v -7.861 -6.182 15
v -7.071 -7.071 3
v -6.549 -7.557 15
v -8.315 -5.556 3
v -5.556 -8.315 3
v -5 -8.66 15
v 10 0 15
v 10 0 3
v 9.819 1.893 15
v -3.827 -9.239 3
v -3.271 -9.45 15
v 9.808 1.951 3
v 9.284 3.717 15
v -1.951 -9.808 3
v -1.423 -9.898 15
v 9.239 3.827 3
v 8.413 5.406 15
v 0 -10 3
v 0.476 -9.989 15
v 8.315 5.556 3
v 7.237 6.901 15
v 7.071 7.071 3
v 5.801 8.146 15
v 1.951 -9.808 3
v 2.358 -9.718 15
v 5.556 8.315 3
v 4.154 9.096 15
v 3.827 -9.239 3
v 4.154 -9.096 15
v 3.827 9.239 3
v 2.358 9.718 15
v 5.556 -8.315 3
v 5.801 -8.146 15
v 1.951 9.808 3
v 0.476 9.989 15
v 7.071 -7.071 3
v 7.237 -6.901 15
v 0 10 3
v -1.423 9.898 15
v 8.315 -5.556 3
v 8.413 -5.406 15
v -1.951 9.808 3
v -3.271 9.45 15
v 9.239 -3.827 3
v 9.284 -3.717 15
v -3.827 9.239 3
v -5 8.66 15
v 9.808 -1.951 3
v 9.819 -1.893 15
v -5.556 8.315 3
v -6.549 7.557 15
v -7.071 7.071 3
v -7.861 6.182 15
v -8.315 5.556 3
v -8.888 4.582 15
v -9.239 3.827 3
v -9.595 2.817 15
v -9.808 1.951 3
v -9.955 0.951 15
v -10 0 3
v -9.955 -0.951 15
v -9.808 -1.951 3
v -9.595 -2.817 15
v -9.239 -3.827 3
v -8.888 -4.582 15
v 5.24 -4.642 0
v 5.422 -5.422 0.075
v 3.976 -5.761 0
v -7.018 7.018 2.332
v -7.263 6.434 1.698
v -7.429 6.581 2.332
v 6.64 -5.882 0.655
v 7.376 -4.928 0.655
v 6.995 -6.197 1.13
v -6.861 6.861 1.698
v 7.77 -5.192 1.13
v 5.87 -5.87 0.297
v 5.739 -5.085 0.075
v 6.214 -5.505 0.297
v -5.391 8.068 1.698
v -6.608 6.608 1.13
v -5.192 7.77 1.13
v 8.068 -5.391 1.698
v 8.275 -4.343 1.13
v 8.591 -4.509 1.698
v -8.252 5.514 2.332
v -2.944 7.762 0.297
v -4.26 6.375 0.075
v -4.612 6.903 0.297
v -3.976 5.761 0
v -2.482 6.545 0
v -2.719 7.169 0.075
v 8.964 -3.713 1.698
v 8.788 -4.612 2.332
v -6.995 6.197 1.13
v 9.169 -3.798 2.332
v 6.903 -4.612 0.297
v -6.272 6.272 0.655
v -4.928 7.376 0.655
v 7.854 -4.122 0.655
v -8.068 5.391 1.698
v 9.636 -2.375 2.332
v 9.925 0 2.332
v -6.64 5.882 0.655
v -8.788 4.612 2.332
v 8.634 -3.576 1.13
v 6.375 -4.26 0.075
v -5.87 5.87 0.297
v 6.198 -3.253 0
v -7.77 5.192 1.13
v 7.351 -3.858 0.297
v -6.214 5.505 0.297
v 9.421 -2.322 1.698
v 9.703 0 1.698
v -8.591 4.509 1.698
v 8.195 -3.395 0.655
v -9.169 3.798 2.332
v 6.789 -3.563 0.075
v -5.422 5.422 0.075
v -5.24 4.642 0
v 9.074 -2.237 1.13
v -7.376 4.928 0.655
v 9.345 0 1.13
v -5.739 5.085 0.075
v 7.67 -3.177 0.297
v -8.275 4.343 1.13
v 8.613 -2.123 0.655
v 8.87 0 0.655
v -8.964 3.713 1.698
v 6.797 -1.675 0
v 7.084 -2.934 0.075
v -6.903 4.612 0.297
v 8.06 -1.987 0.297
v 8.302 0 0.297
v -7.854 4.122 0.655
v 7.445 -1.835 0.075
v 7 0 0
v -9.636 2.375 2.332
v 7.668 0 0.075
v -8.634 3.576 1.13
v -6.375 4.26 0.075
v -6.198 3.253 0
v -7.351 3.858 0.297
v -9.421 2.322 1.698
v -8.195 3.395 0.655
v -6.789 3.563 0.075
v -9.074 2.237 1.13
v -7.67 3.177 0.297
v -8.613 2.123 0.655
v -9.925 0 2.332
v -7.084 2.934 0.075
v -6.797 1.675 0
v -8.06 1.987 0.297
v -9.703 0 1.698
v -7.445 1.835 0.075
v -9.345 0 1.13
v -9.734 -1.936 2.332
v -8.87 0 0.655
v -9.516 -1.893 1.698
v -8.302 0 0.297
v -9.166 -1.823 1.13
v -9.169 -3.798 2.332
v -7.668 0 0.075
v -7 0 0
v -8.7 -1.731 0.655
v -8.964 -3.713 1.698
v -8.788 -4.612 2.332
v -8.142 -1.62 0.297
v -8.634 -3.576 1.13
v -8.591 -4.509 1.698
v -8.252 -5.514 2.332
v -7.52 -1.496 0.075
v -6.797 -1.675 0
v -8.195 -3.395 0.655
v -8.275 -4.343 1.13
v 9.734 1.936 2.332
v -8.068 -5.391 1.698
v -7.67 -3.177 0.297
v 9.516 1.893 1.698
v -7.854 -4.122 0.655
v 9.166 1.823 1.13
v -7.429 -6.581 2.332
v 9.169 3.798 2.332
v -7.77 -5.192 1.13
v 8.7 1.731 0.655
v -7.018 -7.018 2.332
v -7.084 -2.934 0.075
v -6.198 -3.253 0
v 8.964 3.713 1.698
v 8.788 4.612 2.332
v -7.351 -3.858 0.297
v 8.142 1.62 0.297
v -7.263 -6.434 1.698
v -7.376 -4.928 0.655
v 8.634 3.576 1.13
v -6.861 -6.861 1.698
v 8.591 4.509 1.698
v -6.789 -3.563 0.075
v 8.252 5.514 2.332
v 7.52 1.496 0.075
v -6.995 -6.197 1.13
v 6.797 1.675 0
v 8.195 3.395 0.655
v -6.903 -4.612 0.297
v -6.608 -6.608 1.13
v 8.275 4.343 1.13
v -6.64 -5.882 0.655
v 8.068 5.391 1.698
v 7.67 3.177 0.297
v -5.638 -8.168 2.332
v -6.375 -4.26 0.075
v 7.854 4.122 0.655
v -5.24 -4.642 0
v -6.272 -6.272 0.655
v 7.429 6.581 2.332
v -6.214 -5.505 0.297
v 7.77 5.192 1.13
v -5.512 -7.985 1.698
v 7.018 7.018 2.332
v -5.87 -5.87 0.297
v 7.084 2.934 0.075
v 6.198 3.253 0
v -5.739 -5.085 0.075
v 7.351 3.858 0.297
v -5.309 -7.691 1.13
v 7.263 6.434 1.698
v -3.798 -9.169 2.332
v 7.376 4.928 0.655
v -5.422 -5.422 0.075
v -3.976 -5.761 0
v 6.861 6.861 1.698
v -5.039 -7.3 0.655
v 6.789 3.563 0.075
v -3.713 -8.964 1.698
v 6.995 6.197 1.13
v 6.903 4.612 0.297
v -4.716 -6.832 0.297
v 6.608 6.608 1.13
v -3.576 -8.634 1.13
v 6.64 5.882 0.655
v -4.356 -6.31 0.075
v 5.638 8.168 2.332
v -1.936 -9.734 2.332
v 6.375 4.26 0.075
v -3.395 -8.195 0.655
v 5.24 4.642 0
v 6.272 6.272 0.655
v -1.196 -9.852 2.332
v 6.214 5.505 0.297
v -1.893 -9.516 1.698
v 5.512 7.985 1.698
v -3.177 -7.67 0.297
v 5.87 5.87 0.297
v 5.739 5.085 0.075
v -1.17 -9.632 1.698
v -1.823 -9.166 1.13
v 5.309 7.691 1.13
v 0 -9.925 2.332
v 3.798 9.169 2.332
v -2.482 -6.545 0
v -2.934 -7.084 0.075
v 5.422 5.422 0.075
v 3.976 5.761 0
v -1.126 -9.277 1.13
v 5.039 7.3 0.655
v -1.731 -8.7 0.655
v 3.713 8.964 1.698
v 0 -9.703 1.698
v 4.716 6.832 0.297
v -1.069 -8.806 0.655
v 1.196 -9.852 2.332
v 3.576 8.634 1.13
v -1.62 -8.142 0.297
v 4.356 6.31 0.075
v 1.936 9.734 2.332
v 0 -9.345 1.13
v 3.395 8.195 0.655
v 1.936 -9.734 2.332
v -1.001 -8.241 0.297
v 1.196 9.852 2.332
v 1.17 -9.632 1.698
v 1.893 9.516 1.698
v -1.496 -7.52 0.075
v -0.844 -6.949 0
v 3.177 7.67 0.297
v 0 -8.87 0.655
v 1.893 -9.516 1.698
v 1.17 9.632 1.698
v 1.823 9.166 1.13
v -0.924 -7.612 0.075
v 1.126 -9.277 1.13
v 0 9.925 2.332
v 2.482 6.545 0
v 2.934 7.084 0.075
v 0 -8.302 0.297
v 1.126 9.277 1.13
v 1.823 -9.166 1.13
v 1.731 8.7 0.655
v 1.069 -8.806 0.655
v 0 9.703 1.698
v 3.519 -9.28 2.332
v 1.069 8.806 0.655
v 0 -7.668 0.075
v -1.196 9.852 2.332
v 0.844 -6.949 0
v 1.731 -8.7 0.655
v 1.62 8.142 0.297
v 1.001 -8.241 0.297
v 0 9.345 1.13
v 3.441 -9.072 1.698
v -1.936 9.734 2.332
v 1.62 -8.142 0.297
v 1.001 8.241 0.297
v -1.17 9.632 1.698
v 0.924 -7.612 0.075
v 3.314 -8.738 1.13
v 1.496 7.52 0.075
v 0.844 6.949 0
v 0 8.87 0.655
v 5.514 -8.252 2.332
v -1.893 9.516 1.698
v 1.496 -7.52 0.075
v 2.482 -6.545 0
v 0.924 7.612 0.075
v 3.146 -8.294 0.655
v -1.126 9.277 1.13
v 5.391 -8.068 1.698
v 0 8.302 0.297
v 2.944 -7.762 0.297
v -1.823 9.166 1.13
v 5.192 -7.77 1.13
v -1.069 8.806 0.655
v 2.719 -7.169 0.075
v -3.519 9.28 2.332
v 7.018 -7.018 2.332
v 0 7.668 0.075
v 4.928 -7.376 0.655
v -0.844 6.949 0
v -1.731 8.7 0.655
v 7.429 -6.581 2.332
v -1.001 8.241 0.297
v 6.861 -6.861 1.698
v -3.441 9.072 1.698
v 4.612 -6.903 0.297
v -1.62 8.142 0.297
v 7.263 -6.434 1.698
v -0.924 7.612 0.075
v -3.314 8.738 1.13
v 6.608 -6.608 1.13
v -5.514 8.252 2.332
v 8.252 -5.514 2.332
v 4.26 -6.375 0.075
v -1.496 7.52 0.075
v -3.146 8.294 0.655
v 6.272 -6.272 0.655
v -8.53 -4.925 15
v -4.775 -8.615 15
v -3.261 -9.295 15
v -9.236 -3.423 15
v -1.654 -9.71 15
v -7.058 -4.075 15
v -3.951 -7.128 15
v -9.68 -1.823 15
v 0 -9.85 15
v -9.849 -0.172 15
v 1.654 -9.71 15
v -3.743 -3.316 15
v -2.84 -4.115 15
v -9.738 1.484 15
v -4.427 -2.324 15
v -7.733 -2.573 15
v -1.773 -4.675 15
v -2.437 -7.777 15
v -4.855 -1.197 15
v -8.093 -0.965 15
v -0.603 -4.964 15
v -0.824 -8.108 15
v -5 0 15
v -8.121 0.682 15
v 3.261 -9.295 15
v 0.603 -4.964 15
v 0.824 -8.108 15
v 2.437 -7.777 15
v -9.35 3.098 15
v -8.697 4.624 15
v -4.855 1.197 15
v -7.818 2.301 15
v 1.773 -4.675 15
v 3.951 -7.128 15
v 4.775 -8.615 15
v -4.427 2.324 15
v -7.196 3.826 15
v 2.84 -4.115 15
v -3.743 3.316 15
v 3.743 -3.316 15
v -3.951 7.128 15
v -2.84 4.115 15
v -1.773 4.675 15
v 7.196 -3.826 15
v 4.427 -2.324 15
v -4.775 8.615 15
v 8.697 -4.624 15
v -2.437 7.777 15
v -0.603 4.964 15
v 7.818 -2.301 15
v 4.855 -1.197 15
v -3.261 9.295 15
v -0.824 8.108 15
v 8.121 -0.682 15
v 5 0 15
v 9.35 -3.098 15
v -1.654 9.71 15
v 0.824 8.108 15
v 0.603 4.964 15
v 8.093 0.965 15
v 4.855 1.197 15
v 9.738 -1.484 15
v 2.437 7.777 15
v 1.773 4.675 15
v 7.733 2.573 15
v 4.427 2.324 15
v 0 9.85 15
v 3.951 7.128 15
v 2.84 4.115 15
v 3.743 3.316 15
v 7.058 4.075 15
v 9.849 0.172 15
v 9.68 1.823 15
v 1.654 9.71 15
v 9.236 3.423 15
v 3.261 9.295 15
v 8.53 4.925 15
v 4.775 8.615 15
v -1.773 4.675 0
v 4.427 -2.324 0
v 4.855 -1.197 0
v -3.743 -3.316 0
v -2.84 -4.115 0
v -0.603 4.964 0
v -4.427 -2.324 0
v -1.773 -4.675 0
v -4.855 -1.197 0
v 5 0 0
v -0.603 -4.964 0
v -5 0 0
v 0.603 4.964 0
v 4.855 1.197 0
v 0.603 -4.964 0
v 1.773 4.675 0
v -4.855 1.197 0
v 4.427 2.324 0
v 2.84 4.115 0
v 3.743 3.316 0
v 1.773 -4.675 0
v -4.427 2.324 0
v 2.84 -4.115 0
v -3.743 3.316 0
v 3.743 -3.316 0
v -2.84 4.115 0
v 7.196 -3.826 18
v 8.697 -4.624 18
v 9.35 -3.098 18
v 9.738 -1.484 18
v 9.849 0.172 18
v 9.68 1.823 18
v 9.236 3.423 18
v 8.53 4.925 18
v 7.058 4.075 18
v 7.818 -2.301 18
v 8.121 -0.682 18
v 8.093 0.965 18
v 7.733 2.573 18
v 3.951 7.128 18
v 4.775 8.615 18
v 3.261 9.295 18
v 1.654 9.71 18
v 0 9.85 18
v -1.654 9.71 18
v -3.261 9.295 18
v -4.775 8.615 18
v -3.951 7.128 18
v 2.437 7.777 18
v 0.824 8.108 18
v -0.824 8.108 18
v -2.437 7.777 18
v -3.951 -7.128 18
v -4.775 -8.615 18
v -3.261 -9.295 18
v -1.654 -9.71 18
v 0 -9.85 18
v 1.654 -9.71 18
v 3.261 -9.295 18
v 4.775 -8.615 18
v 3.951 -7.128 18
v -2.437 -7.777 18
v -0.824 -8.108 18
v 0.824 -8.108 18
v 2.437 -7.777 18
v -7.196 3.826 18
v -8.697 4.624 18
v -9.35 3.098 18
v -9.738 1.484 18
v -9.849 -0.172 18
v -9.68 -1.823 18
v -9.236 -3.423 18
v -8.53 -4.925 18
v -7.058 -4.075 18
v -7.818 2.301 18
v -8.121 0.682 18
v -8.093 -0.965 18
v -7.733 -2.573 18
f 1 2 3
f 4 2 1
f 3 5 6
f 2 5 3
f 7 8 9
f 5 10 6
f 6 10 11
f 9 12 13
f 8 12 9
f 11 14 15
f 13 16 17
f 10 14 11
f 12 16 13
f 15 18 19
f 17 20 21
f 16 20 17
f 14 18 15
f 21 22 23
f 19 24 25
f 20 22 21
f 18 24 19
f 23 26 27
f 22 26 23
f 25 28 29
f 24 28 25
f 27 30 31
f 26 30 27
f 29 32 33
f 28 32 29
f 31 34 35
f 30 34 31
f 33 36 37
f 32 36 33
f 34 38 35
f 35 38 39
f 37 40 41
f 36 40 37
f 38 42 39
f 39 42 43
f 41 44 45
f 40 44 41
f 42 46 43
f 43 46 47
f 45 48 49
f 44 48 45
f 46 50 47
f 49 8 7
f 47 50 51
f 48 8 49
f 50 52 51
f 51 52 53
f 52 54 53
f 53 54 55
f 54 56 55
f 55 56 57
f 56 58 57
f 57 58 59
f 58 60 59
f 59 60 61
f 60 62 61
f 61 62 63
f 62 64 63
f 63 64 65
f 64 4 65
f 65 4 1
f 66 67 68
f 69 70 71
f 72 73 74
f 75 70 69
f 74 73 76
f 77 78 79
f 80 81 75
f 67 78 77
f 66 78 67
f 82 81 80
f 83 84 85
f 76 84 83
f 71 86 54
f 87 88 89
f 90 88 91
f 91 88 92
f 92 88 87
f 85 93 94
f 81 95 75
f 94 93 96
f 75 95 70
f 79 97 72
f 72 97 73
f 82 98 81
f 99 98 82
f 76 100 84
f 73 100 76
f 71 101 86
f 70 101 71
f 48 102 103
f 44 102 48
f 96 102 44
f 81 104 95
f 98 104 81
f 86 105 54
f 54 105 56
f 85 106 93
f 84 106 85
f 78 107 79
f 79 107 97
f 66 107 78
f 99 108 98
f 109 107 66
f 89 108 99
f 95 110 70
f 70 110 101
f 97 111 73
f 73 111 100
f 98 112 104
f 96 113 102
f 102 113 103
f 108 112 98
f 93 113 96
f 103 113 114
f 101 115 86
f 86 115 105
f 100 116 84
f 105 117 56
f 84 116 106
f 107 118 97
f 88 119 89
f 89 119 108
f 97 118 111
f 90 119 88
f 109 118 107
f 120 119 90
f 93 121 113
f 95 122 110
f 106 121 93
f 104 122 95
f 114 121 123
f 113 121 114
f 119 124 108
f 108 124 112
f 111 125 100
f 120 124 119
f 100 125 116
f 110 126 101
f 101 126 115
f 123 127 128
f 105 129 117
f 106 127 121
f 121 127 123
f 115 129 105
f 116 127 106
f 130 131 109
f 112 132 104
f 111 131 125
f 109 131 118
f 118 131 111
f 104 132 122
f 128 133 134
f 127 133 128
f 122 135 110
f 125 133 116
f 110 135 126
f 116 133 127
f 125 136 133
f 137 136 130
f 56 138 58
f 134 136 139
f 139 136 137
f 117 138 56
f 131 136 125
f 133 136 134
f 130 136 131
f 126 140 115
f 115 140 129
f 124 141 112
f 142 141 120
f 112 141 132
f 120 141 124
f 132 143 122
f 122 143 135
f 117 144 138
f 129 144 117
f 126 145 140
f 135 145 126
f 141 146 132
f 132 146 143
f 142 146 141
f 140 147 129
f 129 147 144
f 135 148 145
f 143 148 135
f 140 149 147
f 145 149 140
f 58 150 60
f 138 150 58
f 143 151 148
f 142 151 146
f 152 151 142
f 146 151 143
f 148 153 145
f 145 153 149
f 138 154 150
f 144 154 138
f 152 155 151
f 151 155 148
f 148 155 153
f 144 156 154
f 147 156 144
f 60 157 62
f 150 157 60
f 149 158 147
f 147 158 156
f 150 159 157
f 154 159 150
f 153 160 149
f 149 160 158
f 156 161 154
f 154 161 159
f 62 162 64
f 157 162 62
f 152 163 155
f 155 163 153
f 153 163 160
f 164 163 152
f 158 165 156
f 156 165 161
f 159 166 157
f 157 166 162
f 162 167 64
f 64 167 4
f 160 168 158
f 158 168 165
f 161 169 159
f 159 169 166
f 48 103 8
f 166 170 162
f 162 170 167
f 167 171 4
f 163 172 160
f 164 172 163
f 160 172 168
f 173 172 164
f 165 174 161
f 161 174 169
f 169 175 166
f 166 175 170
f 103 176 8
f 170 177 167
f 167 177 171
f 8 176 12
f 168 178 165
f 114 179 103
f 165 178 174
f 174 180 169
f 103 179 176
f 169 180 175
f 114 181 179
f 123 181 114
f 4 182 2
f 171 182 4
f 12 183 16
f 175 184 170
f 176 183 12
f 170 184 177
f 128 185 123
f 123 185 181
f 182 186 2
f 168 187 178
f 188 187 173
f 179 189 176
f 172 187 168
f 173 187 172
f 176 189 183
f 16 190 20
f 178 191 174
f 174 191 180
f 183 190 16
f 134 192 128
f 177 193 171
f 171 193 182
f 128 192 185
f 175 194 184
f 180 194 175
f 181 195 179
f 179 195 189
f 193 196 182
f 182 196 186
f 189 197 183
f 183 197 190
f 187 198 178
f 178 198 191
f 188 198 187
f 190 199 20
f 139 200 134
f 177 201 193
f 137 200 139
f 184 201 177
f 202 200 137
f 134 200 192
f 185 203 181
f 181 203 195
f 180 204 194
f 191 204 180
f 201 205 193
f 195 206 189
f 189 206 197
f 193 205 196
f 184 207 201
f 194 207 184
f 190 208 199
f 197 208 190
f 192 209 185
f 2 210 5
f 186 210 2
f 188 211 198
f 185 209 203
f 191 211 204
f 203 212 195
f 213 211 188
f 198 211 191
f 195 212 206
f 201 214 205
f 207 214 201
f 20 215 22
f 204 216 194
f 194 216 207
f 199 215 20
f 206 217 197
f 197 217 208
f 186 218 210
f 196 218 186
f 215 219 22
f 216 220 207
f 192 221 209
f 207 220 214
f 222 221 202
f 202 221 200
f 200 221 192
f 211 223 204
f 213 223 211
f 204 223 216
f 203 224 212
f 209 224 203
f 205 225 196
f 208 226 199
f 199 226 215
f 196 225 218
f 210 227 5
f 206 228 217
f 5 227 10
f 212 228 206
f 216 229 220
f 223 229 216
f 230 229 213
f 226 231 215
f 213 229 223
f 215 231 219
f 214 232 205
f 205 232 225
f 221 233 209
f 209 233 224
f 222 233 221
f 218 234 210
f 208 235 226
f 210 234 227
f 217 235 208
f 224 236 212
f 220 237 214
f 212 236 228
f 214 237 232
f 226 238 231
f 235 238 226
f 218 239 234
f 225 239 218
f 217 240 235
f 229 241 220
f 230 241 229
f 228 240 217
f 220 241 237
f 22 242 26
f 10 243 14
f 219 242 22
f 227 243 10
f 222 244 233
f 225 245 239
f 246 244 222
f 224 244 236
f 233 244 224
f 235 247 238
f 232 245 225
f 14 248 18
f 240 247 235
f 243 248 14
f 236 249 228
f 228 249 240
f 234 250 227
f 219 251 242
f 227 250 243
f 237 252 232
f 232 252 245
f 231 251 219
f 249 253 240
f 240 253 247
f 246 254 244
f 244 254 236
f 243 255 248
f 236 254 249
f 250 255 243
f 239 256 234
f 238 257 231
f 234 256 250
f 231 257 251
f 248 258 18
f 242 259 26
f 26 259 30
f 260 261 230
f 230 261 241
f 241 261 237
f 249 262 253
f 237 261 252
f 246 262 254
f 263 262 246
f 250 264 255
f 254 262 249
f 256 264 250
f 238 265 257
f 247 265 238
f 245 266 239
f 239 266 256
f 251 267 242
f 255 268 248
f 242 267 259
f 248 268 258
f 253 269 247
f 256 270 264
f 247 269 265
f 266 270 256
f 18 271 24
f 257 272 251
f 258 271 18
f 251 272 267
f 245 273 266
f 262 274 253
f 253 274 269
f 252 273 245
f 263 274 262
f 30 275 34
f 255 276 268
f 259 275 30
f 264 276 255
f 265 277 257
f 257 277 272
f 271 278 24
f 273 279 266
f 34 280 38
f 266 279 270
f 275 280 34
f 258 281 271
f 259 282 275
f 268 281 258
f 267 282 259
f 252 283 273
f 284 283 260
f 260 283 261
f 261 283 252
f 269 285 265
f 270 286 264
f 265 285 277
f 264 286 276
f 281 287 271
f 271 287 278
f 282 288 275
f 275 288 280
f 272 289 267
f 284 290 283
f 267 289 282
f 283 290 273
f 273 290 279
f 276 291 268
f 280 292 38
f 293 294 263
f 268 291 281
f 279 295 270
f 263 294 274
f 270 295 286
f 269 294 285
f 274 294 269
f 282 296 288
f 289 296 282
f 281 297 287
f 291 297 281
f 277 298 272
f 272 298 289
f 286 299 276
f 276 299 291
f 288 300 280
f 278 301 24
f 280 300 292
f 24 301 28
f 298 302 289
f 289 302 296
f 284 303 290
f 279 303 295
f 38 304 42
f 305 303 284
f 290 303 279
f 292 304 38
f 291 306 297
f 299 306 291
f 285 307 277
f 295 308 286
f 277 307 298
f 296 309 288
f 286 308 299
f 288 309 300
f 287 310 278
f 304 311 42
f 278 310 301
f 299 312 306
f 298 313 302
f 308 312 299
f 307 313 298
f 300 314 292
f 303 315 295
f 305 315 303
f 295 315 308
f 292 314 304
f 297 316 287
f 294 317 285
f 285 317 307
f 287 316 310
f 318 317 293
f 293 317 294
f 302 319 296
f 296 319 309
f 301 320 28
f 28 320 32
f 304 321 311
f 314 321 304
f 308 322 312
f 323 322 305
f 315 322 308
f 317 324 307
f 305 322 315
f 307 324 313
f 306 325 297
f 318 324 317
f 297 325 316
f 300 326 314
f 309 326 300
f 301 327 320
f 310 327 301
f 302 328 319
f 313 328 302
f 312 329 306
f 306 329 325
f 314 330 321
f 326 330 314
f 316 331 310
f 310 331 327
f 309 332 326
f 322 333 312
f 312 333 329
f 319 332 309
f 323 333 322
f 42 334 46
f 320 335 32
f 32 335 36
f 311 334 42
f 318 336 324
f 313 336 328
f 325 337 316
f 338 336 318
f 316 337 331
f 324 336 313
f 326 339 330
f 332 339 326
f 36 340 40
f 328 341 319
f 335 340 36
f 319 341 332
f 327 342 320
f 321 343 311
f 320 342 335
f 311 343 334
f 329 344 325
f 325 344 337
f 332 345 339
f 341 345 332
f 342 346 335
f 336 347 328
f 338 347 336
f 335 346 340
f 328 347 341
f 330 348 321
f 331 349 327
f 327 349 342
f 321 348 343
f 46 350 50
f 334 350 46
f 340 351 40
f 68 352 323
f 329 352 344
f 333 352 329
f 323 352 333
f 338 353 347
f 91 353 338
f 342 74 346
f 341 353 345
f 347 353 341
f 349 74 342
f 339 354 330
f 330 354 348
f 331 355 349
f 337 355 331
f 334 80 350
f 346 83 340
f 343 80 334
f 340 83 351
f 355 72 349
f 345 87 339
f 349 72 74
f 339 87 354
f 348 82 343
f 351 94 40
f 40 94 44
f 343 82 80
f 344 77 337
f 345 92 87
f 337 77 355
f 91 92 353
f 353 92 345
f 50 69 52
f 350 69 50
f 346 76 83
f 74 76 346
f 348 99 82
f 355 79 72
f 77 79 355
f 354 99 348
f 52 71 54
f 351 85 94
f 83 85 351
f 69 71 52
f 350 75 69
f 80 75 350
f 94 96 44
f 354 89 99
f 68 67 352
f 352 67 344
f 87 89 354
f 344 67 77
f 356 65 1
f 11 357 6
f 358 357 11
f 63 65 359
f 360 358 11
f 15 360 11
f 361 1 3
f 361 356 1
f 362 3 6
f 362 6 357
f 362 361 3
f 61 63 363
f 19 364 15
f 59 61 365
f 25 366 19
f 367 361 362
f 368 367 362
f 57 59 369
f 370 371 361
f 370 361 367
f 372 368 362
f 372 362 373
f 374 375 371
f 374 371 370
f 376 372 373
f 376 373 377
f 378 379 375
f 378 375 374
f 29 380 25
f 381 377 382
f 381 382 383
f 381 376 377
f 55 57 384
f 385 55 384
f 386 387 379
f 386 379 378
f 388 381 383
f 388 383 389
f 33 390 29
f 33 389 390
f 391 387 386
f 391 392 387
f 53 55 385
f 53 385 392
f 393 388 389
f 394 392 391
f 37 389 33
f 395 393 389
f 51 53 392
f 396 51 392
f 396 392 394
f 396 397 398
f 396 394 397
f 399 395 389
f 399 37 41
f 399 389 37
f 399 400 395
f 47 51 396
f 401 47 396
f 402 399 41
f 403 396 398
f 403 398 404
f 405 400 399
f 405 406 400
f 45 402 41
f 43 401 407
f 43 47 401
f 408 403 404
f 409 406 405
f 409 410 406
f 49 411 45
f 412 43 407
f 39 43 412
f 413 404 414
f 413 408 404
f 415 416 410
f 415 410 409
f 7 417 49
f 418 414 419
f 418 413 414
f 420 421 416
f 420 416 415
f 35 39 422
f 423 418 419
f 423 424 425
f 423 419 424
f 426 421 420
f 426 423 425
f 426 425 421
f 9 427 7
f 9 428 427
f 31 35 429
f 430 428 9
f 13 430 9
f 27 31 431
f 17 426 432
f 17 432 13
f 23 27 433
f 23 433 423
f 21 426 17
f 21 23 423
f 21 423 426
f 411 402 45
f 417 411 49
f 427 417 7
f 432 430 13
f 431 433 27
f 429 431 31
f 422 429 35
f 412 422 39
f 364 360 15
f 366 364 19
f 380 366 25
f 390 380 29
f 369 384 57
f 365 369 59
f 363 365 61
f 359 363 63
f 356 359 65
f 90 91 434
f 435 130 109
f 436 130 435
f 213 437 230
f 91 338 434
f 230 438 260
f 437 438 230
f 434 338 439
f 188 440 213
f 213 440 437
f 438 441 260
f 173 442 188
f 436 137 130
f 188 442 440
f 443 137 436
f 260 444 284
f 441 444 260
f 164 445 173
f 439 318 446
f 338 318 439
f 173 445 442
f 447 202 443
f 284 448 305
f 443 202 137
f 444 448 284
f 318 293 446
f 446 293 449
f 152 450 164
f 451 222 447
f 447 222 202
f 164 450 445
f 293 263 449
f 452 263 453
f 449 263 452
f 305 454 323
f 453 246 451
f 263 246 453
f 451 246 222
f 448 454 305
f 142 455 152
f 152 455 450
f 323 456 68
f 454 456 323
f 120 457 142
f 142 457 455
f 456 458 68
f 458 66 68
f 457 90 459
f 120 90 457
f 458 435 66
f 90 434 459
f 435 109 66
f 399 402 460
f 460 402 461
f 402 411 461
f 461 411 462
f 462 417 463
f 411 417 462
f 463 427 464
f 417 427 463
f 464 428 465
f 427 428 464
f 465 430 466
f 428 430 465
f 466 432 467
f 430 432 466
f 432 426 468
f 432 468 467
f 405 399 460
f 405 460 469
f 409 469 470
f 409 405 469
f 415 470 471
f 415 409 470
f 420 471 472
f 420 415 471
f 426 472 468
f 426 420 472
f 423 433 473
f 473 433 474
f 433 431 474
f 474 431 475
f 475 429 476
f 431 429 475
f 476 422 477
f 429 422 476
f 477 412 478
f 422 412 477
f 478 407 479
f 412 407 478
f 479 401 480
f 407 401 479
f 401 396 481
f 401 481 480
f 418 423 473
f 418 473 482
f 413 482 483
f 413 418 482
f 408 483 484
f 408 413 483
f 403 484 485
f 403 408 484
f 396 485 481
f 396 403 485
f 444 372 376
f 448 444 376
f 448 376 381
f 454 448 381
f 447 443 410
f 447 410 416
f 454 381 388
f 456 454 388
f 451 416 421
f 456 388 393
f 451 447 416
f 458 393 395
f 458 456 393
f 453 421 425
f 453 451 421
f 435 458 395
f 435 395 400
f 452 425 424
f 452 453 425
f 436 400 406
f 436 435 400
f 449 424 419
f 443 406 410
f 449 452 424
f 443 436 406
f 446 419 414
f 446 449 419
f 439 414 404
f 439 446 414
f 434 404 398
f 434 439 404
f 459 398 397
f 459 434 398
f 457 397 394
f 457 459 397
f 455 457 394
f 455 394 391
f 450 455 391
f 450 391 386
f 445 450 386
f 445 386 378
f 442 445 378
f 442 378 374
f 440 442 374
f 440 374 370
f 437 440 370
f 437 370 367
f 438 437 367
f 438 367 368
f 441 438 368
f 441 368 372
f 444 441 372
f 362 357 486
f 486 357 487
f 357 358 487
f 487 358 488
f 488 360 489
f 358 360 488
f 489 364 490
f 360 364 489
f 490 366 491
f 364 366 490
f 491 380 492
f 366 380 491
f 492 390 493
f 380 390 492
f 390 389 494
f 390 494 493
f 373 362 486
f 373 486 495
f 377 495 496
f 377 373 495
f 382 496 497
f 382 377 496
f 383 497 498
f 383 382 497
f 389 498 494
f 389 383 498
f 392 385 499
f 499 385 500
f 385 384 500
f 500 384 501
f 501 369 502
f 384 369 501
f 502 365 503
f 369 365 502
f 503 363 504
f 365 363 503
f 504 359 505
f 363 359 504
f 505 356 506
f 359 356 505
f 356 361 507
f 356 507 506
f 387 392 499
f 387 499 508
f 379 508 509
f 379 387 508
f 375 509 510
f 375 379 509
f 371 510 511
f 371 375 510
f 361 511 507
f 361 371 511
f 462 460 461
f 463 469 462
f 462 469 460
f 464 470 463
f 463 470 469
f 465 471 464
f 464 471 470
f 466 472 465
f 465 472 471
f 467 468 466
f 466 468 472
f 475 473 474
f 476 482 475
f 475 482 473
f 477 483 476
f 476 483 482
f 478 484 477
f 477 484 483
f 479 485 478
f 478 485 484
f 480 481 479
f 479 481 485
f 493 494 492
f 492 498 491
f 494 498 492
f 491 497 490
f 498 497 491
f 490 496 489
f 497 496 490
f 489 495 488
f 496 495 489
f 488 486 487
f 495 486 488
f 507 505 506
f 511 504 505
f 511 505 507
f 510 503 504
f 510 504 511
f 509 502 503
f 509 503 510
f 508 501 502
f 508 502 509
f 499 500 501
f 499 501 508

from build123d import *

# Parameters (mm, degrees)
SKETCH_R     = 10
SKETCH_R_2   = 5
PAD_DEPTH    = 15
PAD001_DEPTH = 3
FILLET_R     = 3


with BuildPart() as part:
    # Sketch → Pad (new body)
    with BuildSketch(Plane.XY):
        Circle(SKETCH_R)
        Circle(SKETCH_R_2, mode=Mode.SUBTRACT)
    extrude(amount=PAD_DEPTH)

    # Sketch001 (on Face4 of Pad) → Pad001 (join)
    with BuildSketch(Plane.XY.offset(15)):
        with BuildLine():
            ThreePointArc((-8.697034, 4.624295), (-9.8485, -0.171906), (-8.53035, -4.925))
            Line((-7.058107, -4.075), (-8.53035, -4.925))
            ThreePointArc((-7.196023, 3.826193), (-8.148759, -0.142237), (-7.058107, -4.075))
            Line((-7.196023, 3.826193), (-8.697034, 4.624295))
        make_face()
        with BuildLine():
            Line((-3.951198, 7.128151), (-4.775375, 8.615004))
            ThreePointArc((4.775375, 8.615004), (0, 9.85), (-4.775375, 8.615004))
            Line((3.951198, 7.128151), (4.775375, 8.615004))
            ThreePointArc((3.951198, 7.128151), (0, 8.15), (-3.951198, 7.128151))
        make_face()
        with BuildLine():
            Line((3.951198, -7.128151), (4.775375, -8.615004))
            ThreePointArc((-4.775375, -8.615004), (0, -9.85), (4.775375, -8.615004))
            Line((-3.951198, -7.128151), (-4.775375, -8.615004))
            ThreePointArc((-3.951198, -7.128151), (0, -8.15), (3.951198, -7.128151))
        make_face()
        with BuildLine():
            Line((7.058107, 4.075), (8.53035, 4.925))
            ThreePointArc((8.697034, -4.624295), (9.8485, 0.171906), (8.53035, 4.925))
            Line((7.196023, -3.826193), (8.697034, -4.624295))
            ThreePointArc((7.196023, -3.826193), (8.148759, 0.142237), (7.058107, 4.075))
        make_face()
    extrude(amount=PAD001_DEPTH)

    # Fillet
    fillet_edges = [part.edges().sort_by_distance(p)[0] for p in [
        (-10, 0, 0),
    ]]
    fillet(fillet_edges, radius=FILLET_R)


solid = part.part
